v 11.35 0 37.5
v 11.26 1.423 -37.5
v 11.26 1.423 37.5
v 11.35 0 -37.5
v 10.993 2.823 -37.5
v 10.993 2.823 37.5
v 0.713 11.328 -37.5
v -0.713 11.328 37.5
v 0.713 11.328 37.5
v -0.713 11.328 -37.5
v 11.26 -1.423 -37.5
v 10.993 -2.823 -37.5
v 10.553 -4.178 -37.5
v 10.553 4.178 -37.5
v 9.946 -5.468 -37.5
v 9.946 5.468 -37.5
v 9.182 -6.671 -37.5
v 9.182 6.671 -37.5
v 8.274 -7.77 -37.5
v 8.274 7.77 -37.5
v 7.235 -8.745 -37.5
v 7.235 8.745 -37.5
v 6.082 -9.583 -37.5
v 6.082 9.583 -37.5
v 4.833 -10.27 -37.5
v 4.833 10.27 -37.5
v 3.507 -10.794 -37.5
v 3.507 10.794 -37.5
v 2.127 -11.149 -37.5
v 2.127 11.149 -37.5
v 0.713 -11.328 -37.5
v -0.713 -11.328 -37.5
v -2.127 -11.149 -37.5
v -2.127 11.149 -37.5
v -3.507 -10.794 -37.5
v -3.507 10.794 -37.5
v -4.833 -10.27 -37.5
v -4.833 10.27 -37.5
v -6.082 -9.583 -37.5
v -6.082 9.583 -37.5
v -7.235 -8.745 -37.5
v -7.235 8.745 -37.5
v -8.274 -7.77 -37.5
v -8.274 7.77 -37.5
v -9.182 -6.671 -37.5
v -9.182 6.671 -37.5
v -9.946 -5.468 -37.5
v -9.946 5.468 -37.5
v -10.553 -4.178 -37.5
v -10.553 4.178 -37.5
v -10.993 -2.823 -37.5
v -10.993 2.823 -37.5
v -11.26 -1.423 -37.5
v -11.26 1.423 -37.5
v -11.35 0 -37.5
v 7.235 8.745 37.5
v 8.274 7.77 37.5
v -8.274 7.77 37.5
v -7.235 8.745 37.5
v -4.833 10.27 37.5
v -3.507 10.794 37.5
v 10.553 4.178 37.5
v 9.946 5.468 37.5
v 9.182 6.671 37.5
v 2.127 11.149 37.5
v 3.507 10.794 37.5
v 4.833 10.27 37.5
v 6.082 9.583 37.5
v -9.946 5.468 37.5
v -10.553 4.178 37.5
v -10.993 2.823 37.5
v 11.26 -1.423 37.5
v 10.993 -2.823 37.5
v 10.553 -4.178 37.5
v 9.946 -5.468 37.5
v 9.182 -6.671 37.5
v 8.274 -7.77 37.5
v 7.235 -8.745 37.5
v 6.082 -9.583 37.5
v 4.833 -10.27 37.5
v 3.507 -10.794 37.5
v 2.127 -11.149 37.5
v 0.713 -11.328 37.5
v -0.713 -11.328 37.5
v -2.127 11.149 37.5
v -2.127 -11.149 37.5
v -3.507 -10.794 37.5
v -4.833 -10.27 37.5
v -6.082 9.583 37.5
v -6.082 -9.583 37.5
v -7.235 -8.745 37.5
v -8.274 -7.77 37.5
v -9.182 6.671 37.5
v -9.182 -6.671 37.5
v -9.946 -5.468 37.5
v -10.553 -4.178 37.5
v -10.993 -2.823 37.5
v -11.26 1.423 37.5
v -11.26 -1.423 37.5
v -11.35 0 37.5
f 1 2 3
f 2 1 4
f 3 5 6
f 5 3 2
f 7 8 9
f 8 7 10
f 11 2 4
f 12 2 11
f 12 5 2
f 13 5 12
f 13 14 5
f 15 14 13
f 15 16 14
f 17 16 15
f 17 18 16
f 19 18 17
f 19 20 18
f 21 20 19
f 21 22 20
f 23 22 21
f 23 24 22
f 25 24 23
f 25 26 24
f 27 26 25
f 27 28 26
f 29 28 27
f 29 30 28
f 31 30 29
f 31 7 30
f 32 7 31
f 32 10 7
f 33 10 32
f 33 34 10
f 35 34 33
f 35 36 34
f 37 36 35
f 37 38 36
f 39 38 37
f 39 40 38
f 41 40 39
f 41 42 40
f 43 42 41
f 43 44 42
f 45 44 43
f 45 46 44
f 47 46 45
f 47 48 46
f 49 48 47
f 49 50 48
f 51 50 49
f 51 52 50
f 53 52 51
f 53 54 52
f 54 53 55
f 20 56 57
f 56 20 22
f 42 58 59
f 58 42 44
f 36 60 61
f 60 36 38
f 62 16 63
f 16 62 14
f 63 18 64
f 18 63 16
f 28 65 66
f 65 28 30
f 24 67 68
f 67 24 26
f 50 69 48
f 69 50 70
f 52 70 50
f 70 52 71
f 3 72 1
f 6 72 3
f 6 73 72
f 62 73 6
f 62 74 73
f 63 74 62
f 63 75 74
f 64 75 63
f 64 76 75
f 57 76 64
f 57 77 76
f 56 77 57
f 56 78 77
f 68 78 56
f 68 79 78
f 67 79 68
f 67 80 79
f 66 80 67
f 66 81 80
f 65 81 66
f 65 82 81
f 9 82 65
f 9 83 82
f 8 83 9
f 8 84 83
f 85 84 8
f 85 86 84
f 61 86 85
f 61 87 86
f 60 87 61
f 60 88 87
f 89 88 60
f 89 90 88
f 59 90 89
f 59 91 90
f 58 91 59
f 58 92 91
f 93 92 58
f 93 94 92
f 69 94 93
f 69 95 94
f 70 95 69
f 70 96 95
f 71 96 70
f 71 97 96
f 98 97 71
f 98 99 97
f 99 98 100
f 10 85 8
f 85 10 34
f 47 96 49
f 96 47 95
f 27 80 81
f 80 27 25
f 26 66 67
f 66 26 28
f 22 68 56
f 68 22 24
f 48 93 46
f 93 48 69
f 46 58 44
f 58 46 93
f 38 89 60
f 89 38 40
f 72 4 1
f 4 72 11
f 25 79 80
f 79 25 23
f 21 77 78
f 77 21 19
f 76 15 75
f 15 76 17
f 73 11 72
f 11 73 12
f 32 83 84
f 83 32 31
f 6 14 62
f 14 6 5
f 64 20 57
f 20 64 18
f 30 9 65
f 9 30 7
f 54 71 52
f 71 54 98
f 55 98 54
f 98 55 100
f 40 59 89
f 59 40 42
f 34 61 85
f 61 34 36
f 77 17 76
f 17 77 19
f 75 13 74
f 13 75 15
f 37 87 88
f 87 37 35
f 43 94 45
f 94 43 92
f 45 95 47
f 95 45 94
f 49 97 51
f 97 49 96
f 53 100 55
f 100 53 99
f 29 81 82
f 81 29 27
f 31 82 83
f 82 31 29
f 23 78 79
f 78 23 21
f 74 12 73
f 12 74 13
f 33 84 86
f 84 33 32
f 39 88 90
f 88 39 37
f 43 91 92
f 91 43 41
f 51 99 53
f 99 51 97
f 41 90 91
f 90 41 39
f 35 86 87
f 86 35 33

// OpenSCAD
$fn = 50;


difference() {
	union() {
		translate(v = [0, 0, -37.5000000000]) {
			cylinder(h = 75, r = 11.3500000000);
		}
	}
	union() {
		translate(v = [0, 0, -100.0000000000]) {
			cylinder(h = 200, r = 0);
		}
	}
}
